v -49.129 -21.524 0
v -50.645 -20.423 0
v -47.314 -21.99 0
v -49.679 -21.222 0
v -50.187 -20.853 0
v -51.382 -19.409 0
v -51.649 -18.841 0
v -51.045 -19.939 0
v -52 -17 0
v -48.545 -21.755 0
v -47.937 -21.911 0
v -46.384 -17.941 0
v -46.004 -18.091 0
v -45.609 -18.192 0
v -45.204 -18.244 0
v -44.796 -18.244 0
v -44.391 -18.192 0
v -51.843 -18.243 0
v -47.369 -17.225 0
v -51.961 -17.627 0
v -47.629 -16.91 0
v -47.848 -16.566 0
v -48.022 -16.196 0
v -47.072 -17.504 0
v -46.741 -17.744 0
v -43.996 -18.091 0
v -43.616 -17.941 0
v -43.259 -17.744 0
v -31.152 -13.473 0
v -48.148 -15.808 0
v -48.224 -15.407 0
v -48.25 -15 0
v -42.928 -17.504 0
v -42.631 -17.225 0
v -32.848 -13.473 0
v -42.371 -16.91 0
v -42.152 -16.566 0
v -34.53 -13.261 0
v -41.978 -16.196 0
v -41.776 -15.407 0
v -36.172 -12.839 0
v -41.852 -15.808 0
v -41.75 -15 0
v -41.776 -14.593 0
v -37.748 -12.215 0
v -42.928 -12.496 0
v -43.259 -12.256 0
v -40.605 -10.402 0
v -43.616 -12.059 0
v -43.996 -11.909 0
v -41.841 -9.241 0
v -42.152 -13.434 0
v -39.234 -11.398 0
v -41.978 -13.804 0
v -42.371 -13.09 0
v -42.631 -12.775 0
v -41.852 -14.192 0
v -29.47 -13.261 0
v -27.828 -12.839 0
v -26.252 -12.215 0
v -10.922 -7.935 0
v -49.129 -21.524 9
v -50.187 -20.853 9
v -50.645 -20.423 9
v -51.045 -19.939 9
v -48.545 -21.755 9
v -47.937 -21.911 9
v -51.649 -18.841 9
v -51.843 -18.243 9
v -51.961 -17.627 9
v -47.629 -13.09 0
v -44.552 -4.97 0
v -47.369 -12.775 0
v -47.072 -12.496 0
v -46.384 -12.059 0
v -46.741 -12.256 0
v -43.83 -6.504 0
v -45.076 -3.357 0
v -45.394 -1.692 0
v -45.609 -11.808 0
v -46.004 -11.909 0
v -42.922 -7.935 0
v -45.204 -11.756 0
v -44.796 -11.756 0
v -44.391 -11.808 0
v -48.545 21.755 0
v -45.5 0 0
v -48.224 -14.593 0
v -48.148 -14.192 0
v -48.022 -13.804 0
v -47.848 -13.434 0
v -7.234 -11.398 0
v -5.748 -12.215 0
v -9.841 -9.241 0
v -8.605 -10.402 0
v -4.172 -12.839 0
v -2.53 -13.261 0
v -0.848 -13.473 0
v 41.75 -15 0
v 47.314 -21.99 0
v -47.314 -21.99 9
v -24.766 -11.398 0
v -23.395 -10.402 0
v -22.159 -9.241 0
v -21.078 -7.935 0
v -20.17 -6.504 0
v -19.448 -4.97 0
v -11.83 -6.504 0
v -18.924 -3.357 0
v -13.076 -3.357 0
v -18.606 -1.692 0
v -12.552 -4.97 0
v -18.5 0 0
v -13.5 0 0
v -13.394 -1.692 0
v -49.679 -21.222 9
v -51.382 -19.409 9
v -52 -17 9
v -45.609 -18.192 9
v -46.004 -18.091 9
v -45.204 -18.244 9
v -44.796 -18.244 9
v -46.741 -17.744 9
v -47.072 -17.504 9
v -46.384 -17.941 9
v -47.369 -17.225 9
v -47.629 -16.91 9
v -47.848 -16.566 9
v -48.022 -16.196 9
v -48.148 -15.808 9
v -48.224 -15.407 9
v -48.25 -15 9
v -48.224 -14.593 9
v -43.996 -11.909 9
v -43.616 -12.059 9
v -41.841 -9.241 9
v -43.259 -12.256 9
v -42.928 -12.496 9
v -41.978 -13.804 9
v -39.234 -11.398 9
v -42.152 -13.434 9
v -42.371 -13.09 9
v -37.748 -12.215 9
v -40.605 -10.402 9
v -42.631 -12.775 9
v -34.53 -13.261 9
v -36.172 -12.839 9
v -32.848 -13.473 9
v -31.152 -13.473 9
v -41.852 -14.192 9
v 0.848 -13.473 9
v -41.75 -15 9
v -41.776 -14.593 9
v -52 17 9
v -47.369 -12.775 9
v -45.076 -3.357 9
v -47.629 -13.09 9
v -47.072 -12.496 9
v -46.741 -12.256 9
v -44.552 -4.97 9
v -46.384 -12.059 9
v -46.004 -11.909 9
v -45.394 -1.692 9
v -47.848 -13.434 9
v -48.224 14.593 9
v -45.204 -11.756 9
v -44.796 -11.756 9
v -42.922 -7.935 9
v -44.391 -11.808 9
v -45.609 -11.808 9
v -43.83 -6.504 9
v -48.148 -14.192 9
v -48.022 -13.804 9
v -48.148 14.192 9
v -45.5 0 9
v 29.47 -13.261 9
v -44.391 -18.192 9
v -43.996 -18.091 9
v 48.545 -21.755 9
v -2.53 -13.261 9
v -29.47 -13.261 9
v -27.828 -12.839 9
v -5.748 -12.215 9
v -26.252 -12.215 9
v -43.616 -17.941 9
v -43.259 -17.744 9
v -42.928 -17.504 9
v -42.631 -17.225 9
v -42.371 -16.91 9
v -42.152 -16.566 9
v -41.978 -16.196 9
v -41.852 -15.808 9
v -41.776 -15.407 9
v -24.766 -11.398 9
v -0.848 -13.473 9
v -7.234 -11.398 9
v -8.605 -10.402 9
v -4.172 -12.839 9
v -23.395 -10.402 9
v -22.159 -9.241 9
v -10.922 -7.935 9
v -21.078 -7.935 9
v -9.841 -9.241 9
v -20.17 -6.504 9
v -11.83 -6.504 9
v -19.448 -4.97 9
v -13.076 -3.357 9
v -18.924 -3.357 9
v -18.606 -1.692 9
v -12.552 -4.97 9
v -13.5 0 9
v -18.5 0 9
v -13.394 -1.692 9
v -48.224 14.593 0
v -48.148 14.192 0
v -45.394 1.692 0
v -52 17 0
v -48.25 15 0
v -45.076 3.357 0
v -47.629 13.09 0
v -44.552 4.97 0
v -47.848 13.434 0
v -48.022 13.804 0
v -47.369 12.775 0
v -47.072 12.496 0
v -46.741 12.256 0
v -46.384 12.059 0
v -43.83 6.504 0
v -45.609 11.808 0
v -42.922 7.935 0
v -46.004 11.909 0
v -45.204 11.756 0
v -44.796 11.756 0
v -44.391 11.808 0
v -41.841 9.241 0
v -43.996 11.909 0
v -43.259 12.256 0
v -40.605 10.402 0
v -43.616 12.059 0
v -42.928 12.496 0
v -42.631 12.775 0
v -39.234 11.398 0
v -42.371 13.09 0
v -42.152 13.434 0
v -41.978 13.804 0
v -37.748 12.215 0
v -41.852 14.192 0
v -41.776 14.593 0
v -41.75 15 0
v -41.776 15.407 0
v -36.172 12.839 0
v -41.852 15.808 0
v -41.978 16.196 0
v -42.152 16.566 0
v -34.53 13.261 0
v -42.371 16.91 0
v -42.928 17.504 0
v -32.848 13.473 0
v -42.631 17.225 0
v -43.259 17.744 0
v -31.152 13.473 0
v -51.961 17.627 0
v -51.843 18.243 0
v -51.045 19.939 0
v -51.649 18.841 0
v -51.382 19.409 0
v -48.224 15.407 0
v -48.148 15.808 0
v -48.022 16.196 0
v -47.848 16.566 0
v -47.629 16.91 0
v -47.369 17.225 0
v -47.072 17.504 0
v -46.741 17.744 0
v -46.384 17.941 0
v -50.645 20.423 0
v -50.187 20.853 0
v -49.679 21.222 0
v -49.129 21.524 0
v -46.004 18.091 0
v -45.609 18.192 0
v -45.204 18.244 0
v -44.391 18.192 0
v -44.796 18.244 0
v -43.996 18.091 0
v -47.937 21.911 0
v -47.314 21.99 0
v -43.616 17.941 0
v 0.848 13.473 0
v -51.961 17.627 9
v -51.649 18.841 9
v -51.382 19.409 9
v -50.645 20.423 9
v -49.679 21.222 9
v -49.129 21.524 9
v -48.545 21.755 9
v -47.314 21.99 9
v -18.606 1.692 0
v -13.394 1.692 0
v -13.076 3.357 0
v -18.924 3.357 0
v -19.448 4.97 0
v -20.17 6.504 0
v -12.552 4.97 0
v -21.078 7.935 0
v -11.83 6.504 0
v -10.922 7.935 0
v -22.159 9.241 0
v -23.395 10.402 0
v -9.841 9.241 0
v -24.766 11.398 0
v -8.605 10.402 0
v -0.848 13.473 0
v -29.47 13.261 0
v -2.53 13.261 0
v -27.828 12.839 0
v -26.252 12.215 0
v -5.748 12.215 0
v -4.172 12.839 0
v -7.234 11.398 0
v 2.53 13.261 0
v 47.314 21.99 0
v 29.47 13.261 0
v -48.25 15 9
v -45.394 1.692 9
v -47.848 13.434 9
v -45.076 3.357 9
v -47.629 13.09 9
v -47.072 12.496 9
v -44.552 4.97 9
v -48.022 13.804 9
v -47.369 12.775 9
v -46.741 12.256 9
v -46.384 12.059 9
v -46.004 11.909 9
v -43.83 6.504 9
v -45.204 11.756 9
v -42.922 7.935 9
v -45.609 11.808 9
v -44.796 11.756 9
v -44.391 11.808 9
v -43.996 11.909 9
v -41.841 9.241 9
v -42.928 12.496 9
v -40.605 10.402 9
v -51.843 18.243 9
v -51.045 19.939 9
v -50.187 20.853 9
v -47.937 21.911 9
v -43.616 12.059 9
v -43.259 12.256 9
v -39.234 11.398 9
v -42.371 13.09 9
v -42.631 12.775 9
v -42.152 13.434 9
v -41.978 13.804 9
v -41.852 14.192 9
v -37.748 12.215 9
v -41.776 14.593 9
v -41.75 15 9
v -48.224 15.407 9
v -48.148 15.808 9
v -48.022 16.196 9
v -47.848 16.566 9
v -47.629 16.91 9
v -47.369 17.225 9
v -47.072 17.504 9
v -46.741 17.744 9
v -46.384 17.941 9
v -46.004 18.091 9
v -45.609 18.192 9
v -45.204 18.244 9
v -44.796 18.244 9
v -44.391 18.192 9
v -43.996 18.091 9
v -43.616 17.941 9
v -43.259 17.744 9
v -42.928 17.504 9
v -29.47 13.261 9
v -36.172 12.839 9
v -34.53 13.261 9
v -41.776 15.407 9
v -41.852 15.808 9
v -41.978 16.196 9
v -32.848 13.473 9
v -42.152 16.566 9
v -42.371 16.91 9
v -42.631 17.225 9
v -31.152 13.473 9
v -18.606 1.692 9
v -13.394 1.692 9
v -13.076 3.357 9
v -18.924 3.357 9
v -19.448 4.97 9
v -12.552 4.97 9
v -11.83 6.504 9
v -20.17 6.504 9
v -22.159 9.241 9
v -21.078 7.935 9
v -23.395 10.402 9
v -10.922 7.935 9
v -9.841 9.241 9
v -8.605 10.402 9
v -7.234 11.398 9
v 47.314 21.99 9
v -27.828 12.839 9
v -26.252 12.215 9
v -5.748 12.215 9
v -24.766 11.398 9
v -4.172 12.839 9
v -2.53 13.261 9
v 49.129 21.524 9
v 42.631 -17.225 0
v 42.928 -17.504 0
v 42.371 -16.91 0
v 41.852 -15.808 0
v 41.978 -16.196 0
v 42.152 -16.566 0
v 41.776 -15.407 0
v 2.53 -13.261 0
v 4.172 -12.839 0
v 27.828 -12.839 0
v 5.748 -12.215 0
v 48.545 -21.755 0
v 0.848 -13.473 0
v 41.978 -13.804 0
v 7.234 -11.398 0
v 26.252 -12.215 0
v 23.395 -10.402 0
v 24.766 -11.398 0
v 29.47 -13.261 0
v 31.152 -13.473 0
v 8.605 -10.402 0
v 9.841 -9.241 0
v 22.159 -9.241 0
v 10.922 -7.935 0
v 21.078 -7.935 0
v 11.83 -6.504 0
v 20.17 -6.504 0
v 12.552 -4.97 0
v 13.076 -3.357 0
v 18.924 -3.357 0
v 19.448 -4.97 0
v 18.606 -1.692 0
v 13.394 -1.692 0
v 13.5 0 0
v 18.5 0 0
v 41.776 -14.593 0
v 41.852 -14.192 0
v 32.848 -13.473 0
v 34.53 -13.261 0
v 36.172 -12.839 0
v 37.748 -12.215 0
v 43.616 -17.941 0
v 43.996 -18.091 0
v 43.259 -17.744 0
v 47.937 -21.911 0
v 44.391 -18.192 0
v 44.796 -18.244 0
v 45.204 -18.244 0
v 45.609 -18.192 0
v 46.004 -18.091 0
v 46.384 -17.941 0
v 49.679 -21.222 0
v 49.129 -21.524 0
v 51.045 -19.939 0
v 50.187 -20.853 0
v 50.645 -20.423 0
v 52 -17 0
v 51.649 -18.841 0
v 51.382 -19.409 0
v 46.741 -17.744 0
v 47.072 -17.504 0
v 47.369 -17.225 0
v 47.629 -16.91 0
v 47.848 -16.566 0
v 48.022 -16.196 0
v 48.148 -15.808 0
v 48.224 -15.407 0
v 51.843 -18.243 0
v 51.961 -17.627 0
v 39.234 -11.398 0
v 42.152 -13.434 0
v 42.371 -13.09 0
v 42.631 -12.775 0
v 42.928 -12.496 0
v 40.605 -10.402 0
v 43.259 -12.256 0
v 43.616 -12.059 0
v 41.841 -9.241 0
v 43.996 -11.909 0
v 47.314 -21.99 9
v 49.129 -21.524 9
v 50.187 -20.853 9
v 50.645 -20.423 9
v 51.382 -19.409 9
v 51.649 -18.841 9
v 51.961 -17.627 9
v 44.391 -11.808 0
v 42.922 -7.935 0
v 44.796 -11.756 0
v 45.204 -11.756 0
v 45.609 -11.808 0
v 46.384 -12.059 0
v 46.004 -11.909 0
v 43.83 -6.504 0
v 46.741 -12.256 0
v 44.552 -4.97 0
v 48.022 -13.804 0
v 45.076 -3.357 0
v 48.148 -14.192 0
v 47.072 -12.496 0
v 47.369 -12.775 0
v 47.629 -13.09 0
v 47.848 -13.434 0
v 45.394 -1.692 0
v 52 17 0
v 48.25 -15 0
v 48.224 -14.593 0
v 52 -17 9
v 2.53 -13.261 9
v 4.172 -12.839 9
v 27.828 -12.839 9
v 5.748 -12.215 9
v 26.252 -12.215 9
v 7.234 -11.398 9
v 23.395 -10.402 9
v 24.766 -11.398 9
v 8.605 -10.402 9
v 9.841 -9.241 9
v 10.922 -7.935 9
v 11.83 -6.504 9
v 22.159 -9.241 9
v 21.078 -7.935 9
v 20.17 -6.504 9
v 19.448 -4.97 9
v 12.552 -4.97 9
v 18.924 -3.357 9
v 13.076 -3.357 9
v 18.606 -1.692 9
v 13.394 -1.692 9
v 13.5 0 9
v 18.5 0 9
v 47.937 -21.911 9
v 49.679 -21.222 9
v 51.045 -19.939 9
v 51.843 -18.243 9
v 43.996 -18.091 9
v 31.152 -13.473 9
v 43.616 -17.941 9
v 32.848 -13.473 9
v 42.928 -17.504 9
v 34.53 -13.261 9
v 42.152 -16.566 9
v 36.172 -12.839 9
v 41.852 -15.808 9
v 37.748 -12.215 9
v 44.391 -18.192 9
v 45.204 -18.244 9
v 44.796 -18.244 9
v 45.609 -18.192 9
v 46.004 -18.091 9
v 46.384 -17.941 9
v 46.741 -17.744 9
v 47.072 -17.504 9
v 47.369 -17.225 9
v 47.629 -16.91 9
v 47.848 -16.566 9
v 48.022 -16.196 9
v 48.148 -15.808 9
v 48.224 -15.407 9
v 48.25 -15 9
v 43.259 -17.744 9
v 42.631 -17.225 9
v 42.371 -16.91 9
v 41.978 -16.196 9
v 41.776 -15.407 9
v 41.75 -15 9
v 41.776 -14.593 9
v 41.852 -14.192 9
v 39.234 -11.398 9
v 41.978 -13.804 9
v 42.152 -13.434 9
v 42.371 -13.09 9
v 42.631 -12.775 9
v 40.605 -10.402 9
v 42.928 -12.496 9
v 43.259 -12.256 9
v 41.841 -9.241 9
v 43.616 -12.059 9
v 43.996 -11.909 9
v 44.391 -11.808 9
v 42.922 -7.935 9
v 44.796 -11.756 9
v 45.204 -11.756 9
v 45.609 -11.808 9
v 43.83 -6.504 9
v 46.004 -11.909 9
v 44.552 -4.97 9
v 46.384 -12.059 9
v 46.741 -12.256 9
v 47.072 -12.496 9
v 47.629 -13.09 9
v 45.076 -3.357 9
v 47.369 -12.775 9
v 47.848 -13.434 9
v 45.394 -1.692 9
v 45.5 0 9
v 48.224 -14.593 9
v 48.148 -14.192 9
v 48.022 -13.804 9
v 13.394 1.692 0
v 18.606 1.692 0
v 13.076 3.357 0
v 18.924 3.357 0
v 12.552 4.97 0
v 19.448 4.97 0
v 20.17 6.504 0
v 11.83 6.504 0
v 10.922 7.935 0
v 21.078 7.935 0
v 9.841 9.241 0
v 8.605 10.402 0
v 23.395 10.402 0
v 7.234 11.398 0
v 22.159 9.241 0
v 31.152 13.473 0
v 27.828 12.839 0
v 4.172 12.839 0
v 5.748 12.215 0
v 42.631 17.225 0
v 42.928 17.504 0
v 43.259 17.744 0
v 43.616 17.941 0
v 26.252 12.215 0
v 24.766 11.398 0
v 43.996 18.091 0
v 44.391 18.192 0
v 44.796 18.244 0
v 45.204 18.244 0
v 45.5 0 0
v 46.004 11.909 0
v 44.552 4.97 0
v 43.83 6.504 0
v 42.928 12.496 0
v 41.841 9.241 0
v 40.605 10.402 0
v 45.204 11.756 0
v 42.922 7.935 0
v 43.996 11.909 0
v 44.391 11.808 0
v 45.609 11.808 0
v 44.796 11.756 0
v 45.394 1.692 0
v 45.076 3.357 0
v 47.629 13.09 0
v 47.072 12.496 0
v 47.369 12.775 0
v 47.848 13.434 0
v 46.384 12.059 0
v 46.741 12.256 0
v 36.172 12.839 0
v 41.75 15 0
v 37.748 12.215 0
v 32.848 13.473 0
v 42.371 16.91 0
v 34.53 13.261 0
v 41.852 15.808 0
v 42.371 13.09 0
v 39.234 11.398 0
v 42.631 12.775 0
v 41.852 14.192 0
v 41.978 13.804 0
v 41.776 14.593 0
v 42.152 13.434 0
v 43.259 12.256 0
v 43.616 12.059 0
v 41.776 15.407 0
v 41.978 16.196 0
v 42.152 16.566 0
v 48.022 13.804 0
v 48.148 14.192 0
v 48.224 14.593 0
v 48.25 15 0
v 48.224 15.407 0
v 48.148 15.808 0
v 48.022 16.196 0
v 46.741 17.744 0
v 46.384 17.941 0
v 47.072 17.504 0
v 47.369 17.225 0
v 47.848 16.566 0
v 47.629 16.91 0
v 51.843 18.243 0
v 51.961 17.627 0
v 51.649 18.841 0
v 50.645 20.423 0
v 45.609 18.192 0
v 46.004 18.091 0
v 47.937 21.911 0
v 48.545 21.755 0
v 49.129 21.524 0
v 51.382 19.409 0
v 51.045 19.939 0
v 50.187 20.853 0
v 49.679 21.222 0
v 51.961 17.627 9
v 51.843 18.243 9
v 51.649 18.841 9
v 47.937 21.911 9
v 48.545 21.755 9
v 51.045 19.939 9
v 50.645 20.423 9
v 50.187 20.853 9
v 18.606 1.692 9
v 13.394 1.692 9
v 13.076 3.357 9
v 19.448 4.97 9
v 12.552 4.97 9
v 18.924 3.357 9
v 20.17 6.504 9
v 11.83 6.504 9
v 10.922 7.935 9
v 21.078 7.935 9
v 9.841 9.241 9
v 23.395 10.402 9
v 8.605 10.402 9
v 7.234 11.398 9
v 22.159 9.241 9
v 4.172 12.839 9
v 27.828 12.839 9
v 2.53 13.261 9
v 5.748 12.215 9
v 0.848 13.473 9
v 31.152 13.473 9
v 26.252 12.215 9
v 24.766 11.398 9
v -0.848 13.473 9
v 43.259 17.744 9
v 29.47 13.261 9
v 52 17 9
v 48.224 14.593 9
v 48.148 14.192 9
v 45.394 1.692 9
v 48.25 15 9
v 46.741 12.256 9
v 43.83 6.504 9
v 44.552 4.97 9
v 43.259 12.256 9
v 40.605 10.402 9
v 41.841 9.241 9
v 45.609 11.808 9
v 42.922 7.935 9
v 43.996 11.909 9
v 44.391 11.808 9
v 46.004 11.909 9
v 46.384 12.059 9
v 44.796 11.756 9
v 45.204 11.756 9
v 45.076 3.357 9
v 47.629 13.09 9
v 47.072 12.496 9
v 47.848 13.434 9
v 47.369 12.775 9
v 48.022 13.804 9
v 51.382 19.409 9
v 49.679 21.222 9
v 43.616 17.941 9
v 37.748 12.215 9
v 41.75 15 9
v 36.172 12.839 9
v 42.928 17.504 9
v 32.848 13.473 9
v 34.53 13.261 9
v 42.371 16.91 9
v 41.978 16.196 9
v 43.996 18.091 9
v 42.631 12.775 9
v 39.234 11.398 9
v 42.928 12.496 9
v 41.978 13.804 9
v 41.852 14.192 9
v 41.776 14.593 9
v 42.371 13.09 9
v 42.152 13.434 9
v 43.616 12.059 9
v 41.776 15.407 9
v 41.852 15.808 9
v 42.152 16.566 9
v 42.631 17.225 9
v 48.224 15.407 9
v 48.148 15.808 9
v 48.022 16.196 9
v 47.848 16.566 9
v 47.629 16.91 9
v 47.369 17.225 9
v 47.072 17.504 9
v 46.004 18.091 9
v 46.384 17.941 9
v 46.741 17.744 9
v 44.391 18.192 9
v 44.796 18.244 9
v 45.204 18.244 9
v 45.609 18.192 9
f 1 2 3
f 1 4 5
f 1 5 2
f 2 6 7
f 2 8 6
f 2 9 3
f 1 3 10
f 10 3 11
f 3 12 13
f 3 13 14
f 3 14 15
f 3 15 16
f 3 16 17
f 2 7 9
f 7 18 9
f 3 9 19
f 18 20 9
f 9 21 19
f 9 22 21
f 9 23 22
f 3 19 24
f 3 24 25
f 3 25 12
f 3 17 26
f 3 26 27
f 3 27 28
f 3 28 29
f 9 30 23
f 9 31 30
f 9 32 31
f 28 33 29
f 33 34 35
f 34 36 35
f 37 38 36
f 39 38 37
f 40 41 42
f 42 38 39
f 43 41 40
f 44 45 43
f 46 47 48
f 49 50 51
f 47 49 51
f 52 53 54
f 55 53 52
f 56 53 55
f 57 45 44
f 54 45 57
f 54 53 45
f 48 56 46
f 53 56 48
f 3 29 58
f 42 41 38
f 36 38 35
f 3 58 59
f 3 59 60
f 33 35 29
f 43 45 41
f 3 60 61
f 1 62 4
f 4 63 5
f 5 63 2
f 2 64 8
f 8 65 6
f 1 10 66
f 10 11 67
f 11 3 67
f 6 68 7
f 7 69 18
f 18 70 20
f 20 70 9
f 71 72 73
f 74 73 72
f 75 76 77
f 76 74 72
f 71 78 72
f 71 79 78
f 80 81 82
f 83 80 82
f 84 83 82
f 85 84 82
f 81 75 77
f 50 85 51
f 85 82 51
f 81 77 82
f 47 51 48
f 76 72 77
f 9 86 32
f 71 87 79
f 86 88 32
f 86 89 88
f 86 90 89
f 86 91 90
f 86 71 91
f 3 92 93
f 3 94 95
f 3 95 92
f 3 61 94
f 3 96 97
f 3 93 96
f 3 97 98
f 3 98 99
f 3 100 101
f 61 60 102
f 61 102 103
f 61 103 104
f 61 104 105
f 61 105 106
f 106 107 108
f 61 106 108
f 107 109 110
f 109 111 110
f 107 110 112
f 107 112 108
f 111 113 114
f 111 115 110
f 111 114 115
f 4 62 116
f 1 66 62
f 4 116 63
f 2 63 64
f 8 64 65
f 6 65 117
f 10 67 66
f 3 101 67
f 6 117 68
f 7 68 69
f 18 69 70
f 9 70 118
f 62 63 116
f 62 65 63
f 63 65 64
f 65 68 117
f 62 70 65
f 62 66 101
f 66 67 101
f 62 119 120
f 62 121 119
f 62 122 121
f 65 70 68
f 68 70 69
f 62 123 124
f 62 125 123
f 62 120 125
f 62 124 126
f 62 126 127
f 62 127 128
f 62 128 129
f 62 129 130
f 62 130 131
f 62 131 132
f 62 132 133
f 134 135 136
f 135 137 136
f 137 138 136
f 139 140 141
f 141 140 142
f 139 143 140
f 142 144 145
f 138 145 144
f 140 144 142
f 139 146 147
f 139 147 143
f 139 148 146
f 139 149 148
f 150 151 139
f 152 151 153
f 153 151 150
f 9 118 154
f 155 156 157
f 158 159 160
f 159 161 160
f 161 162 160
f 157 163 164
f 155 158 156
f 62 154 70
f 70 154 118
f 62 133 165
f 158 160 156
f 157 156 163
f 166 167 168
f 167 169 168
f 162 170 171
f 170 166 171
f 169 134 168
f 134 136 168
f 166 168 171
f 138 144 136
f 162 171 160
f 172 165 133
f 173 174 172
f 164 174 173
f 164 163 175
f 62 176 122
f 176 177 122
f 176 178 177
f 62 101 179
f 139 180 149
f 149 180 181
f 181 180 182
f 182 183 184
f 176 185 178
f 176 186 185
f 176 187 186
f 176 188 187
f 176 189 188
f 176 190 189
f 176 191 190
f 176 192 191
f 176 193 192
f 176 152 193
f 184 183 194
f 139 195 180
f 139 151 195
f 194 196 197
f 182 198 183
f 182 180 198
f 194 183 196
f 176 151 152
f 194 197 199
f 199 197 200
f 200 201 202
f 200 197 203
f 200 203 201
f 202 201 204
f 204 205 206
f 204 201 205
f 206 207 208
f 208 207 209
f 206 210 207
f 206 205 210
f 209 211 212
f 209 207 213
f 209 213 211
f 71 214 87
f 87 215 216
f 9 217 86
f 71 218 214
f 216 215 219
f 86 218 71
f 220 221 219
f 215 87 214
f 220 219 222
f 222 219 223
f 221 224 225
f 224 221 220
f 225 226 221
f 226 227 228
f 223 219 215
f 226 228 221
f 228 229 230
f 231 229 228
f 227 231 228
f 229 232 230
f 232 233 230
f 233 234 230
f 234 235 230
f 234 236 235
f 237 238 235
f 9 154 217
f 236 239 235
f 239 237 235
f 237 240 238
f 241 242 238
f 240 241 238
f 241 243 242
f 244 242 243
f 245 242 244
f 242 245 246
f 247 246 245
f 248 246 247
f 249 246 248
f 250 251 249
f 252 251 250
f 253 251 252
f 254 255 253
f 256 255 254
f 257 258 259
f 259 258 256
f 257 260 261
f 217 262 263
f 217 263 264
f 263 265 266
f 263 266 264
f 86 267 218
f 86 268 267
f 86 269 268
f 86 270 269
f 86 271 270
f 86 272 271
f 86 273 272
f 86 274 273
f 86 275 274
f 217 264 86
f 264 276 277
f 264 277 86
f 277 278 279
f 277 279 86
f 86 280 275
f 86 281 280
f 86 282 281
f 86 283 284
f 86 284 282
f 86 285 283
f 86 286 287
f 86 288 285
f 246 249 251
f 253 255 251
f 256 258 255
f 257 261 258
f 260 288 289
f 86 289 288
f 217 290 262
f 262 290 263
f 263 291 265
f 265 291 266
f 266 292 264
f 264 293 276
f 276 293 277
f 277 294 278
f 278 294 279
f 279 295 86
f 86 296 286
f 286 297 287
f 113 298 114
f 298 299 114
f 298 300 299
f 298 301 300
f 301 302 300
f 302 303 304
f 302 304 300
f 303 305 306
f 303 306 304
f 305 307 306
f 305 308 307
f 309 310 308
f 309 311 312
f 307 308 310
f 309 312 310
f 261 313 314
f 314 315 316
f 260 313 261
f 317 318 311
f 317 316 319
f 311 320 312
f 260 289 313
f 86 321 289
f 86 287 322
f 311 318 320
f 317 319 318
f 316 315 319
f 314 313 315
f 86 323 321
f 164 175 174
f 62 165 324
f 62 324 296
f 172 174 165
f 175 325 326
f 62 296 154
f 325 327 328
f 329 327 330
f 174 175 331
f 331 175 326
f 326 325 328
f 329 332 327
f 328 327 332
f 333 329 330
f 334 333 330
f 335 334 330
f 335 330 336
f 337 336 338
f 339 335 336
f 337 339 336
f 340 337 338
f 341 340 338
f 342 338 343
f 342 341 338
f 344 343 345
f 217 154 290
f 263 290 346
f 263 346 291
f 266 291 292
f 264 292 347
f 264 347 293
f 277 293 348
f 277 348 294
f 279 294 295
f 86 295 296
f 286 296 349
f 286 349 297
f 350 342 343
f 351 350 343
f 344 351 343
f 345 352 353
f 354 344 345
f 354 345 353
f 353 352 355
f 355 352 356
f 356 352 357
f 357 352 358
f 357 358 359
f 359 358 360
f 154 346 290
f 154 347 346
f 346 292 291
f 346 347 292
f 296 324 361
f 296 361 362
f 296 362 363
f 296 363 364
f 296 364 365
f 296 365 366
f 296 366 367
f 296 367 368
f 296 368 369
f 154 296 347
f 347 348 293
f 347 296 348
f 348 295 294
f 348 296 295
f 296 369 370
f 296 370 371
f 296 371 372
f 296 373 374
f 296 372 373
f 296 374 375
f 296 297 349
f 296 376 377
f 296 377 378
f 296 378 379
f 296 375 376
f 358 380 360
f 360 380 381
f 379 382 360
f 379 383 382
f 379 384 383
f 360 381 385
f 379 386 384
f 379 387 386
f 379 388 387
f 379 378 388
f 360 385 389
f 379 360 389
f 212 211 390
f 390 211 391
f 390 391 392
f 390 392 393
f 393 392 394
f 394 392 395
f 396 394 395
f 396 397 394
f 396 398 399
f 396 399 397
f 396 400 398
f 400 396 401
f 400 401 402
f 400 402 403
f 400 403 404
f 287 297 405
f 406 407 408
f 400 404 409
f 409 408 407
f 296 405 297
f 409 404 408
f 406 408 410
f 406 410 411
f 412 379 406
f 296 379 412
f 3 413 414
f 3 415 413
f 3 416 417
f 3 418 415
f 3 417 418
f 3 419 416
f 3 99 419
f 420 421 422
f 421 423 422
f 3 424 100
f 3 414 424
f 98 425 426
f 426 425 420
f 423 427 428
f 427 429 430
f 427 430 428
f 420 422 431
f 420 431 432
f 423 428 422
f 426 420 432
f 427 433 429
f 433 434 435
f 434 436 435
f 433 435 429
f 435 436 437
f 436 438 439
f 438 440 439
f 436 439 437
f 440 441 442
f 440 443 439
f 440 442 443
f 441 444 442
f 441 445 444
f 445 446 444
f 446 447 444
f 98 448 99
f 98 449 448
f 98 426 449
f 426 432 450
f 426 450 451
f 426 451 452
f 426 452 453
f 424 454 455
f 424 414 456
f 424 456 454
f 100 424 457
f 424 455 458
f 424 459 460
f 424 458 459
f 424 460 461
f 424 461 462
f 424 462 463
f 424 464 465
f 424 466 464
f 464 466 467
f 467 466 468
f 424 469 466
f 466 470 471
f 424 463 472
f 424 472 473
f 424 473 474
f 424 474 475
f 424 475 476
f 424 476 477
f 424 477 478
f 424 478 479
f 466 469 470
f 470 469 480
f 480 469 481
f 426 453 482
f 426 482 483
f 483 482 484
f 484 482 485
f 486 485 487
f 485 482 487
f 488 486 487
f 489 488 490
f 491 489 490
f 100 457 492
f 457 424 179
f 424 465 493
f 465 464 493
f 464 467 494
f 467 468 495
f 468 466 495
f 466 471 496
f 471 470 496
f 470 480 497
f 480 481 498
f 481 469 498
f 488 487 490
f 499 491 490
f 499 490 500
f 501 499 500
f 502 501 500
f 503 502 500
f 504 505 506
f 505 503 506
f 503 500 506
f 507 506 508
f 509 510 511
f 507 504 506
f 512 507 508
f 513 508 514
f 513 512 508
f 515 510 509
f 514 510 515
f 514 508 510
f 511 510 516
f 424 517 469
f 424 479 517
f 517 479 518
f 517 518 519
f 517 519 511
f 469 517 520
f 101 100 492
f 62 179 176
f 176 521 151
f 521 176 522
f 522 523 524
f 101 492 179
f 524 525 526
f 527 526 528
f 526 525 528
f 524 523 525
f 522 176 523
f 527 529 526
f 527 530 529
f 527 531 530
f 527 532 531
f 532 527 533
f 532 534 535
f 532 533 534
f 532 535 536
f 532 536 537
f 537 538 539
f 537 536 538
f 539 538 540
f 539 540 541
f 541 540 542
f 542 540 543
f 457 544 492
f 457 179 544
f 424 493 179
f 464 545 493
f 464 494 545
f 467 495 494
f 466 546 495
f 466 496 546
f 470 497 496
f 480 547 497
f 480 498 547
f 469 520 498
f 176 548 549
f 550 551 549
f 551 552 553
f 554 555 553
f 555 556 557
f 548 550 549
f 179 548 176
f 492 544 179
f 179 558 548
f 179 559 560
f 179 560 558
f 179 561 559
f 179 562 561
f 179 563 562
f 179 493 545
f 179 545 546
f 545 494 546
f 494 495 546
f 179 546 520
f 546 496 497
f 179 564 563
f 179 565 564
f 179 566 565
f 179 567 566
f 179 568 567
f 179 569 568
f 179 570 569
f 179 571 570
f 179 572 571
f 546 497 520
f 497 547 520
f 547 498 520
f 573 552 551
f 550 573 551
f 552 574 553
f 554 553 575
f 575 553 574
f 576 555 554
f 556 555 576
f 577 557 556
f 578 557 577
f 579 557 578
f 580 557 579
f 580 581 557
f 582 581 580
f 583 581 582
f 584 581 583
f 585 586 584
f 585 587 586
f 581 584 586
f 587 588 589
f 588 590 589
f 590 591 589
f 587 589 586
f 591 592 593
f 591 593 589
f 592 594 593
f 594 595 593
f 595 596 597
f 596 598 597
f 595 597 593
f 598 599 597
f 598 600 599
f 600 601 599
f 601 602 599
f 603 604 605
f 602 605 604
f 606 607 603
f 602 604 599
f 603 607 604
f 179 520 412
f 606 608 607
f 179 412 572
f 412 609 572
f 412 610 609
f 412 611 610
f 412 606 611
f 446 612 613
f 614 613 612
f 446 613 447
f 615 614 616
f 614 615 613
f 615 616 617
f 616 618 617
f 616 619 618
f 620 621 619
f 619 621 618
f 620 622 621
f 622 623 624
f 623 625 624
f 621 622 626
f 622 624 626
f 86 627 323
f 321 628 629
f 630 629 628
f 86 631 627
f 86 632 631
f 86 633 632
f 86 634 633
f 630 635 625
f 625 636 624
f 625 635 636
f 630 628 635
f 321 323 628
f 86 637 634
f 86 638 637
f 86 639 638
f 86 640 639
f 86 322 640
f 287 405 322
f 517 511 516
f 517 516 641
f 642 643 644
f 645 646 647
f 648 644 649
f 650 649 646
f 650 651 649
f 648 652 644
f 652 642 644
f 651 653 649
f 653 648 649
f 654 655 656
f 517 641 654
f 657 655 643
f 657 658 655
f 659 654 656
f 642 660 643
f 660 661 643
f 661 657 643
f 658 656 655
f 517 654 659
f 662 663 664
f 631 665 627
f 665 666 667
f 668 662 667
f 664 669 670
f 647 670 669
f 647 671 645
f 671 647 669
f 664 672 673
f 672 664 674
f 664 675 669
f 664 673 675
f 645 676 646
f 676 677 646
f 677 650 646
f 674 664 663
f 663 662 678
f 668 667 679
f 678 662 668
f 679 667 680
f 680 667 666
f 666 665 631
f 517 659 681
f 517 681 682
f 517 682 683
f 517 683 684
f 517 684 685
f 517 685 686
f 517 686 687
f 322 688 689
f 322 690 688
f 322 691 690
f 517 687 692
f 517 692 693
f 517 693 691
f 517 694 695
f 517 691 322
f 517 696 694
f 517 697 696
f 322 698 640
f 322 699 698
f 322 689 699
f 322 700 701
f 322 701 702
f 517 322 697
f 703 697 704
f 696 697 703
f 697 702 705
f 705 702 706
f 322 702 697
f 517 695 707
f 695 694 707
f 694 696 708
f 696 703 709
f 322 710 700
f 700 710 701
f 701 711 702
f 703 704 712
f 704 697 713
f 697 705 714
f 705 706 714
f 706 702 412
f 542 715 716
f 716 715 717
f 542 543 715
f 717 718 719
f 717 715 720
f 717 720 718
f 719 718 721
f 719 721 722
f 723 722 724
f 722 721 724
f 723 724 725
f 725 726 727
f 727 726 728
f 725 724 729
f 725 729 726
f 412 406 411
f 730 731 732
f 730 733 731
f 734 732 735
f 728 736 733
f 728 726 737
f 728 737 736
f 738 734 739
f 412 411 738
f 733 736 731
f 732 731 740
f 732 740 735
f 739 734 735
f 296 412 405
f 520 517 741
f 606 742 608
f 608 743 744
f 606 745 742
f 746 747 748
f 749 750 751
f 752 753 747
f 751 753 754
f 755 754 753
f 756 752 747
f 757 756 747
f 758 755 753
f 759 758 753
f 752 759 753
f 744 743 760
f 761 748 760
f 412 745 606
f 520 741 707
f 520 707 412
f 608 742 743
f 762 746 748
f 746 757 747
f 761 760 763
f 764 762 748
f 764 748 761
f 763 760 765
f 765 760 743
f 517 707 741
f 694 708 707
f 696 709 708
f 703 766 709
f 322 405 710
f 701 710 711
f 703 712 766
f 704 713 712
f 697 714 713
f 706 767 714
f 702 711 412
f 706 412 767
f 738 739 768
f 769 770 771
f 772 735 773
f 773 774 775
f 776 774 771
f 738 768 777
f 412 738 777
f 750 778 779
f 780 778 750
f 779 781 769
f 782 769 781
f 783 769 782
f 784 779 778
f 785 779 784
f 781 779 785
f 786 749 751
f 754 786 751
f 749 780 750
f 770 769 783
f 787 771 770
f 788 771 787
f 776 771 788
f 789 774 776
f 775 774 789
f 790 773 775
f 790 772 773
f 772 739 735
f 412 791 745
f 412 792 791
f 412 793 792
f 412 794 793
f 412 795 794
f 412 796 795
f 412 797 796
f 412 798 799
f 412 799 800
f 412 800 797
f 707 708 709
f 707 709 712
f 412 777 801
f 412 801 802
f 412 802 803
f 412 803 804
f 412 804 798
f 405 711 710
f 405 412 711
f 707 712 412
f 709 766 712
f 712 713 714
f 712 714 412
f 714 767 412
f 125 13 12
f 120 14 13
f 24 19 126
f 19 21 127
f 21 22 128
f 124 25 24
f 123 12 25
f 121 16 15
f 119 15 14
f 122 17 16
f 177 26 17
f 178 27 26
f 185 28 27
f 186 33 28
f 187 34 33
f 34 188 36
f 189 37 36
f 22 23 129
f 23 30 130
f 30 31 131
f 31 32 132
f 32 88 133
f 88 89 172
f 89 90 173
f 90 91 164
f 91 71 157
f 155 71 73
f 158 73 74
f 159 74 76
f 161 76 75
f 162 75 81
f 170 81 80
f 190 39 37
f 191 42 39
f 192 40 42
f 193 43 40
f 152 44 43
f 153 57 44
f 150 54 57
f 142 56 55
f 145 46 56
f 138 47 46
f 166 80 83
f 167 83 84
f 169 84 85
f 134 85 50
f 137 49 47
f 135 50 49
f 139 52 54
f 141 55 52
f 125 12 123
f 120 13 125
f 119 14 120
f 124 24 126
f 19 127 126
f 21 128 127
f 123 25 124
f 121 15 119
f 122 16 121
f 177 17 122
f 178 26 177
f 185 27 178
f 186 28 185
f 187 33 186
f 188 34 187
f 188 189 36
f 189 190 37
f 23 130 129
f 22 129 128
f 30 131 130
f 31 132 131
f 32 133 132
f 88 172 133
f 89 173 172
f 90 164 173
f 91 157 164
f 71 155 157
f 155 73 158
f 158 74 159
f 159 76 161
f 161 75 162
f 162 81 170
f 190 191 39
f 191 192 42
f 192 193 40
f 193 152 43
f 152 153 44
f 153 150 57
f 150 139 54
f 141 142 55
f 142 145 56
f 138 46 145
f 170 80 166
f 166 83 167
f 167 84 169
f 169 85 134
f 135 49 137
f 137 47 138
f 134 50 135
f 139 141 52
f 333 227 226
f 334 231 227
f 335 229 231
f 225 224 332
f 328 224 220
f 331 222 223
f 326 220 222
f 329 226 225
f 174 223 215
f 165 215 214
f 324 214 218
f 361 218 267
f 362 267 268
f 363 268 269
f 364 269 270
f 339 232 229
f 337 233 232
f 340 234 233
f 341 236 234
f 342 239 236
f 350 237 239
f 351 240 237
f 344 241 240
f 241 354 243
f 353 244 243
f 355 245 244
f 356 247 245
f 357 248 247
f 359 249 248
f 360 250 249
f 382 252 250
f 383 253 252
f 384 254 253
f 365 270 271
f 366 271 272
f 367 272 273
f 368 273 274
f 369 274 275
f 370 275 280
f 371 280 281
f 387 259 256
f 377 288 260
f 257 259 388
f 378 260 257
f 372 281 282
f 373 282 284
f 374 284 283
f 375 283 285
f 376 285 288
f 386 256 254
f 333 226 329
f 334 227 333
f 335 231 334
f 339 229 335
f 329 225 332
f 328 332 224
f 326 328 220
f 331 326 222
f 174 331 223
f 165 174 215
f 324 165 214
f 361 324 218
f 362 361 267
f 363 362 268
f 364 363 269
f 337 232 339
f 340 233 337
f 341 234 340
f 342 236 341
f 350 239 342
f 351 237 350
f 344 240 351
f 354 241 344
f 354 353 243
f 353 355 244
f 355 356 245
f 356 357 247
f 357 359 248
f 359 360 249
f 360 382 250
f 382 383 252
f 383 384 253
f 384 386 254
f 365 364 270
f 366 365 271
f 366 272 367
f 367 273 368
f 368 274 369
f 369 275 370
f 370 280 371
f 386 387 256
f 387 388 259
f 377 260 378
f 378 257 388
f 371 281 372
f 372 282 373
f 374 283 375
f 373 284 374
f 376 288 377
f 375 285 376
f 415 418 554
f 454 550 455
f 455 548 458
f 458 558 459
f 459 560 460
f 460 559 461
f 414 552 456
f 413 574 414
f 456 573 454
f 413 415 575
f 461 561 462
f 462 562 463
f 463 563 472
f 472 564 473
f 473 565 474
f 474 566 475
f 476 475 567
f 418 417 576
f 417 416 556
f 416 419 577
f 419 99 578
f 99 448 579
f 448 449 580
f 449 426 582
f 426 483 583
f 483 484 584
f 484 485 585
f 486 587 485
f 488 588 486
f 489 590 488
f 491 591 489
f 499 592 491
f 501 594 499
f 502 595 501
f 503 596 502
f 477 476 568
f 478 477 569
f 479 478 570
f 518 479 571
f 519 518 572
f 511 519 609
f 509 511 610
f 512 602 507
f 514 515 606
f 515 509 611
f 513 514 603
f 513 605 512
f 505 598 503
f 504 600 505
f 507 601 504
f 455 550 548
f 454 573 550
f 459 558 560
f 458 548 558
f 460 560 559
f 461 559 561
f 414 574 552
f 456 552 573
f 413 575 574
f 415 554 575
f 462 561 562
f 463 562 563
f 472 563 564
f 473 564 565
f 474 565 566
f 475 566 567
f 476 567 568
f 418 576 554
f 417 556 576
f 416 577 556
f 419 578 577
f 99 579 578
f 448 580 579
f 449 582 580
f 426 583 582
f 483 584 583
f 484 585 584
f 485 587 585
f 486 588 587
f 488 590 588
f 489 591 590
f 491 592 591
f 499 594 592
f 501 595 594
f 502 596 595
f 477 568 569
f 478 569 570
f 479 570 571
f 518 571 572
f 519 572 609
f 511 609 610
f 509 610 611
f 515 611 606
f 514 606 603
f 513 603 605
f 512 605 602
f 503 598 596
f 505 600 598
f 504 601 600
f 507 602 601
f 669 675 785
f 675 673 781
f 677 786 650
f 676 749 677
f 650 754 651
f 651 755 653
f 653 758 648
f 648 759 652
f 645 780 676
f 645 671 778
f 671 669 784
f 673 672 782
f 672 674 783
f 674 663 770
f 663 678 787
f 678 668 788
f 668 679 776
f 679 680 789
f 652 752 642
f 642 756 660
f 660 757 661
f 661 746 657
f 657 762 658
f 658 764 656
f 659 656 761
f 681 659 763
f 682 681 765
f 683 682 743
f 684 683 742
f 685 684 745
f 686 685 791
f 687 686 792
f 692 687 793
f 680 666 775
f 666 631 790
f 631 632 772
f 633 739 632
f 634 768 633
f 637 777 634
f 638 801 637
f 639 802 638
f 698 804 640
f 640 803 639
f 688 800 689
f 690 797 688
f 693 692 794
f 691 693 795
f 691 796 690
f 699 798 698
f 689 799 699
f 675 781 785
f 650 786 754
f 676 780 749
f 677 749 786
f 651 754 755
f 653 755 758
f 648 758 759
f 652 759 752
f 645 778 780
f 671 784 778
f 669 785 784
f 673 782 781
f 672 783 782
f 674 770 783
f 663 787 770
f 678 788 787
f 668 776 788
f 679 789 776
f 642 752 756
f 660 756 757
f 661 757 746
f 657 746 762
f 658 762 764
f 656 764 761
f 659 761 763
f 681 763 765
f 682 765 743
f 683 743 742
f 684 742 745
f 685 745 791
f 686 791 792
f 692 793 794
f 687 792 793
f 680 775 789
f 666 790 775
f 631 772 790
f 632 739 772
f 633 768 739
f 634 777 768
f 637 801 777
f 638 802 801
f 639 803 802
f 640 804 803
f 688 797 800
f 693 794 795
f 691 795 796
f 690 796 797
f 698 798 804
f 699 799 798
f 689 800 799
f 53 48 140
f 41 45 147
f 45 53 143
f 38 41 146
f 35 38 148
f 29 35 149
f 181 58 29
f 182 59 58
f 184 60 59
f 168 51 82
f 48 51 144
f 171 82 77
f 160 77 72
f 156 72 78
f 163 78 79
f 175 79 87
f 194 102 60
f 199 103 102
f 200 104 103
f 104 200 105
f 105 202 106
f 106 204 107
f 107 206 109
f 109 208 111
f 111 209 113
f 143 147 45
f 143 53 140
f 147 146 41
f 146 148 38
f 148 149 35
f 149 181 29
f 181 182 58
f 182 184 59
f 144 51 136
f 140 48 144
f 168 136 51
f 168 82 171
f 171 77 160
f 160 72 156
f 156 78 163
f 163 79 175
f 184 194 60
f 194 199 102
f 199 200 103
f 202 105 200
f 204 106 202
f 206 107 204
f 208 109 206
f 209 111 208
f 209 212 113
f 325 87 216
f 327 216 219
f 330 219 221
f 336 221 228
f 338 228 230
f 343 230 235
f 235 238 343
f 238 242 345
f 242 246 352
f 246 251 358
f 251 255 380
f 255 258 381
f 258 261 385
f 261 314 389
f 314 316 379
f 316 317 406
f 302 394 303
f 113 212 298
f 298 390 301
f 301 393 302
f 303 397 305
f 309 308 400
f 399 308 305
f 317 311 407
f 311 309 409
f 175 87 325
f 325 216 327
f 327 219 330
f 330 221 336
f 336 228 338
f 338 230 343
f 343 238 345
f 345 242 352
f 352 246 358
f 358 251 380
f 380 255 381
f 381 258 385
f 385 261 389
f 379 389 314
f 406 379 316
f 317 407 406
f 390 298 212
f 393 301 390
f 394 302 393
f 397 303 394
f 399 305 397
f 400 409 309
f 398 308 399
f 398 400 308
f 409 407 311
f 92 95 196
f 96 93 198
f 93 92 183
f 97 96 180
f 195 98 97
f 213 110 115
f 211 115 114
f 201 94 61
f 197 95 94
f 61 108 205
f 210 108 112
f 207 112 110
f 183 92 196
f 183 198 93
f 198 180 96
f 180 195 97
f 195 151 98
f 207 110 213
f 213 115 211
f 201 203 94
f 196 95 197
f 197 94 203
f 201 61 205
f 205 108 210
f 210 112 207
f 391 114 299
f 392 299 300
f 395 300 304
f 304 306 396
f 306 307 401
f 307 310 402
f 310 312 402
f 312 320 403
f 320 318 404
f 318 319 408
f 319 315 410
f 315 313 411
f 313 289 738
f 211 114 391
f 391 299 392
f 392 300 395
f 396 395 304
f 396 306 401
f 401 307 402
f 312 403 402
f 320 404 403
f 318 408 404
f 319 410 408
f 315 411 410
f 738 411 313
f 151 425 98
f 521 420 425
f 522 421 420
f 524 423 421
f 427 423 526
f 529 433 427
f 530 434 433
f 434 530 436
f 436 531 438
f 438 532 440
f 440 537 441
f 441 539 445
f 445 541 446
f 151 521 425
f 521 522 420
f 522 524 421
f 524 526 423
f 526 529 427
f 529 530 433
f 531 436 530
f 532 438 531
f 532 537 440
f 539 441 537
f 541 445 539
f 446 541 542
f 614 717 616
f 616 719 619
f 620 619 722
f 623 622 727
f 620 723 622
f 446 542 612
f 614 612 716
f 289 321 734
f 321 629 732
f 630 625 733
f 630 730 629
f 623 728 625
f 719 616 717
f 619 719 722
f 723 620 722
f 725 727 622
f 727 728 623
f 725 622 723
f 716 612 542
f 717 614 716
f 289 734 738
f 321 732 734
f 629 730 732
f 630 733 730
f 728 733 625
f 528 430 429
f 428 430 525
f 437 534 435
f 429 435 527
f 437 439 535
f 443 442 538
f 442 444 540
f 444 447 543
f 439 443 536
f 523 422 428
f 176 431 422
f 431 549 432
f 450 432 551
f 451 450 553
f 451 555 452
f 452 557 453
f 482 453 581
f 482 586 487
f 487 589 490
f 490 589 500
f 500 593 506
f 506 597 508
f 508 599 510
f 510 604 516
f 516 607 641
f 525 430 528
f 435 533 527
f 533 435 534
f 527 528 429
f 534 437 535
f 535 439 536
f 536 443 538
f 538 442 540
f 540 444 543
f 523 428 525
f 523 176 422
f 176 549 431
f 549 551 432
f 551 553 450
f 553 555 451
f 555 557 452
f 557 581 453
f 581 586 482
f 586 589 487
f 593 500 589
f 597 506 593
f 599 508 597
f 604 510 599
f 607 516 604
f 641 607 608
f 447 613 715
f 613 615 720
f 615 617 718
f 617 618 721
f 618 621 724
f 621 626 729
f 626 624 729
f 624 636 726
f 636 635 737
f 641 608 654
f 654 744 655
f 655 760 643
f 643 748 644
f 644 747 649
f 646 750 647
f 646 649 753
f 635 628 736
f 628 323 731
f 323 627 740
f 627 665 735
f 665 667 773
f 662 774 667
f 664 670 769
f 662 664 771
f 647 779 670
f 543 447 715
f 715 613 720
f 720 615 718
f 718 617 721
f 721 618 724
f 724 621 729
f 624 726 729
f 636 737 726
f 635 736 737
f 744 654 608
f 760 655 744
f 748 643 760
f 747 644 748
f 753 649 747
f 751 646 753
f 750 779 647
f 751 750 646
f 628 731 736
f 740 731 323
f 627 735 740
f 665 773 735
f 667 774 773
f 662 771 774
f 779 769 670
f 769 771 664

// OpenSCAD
$fn = 50;

difference() {
	union() {
		hull() {
			translate(v = [-47.0, 17.0, 0]) {
				cylinder(h = 9, r = 5);
			}
			translate(v = [47.0, 17.0, 0]) {
				cylinder(h = 9, r = 5);
			}
			translate(v = [-47.0, -17.0, 0]) {
				cylinder(h = 9, r = 5);
			}
			translate(v = [47.0, -17.0, 0]) {
				cylinder(h = 9, r = 5);
			}
		}
	}
	union() {
		translate(v = [-45.0, -15.0, -100.0]) {
			cylinder(h = 200, r = 3.25);
		}
		translate(v = [-45.0, 15.0, -100.0]) {
			cylinder(h = 200, r = 3.25);
		}
		translate(v = [45.0, -15.0, -100.0]) {
			cylinder(h = 200, r = 3.25);
		}
		translate(v = [45.0, 15.0, -100.0]) {
			cylinder(h = 200, r = 3.25);
		}
		translate(v = [-45.0, -15.0, -100.0]) {
			cylinder(h = 200, r = 1.8);
		}
		translate(v = [-45.0, 15.0, -100.0]) {
			cylinder(h = 200, r = 1.8);
		}
		translate(v = [45.0, -15.0, -100.0]) {
			cylinder(h = 200, r = 1.8);
		}
		translate(v = [45.0, 15.0, -100.0]) {
			cylinder(h = 200, r = 1.8);
		}
		translate(v = [-32.0, 0, 0.0]) {
			cylinder(h = 9, r = 13.5);
		}
		cylinder(h = 9, r = 13.5);
		translate(v = [32.0, 0, 0.0]) {
			cylinder(h = 9, r = 13.5);
		}
	}
}
